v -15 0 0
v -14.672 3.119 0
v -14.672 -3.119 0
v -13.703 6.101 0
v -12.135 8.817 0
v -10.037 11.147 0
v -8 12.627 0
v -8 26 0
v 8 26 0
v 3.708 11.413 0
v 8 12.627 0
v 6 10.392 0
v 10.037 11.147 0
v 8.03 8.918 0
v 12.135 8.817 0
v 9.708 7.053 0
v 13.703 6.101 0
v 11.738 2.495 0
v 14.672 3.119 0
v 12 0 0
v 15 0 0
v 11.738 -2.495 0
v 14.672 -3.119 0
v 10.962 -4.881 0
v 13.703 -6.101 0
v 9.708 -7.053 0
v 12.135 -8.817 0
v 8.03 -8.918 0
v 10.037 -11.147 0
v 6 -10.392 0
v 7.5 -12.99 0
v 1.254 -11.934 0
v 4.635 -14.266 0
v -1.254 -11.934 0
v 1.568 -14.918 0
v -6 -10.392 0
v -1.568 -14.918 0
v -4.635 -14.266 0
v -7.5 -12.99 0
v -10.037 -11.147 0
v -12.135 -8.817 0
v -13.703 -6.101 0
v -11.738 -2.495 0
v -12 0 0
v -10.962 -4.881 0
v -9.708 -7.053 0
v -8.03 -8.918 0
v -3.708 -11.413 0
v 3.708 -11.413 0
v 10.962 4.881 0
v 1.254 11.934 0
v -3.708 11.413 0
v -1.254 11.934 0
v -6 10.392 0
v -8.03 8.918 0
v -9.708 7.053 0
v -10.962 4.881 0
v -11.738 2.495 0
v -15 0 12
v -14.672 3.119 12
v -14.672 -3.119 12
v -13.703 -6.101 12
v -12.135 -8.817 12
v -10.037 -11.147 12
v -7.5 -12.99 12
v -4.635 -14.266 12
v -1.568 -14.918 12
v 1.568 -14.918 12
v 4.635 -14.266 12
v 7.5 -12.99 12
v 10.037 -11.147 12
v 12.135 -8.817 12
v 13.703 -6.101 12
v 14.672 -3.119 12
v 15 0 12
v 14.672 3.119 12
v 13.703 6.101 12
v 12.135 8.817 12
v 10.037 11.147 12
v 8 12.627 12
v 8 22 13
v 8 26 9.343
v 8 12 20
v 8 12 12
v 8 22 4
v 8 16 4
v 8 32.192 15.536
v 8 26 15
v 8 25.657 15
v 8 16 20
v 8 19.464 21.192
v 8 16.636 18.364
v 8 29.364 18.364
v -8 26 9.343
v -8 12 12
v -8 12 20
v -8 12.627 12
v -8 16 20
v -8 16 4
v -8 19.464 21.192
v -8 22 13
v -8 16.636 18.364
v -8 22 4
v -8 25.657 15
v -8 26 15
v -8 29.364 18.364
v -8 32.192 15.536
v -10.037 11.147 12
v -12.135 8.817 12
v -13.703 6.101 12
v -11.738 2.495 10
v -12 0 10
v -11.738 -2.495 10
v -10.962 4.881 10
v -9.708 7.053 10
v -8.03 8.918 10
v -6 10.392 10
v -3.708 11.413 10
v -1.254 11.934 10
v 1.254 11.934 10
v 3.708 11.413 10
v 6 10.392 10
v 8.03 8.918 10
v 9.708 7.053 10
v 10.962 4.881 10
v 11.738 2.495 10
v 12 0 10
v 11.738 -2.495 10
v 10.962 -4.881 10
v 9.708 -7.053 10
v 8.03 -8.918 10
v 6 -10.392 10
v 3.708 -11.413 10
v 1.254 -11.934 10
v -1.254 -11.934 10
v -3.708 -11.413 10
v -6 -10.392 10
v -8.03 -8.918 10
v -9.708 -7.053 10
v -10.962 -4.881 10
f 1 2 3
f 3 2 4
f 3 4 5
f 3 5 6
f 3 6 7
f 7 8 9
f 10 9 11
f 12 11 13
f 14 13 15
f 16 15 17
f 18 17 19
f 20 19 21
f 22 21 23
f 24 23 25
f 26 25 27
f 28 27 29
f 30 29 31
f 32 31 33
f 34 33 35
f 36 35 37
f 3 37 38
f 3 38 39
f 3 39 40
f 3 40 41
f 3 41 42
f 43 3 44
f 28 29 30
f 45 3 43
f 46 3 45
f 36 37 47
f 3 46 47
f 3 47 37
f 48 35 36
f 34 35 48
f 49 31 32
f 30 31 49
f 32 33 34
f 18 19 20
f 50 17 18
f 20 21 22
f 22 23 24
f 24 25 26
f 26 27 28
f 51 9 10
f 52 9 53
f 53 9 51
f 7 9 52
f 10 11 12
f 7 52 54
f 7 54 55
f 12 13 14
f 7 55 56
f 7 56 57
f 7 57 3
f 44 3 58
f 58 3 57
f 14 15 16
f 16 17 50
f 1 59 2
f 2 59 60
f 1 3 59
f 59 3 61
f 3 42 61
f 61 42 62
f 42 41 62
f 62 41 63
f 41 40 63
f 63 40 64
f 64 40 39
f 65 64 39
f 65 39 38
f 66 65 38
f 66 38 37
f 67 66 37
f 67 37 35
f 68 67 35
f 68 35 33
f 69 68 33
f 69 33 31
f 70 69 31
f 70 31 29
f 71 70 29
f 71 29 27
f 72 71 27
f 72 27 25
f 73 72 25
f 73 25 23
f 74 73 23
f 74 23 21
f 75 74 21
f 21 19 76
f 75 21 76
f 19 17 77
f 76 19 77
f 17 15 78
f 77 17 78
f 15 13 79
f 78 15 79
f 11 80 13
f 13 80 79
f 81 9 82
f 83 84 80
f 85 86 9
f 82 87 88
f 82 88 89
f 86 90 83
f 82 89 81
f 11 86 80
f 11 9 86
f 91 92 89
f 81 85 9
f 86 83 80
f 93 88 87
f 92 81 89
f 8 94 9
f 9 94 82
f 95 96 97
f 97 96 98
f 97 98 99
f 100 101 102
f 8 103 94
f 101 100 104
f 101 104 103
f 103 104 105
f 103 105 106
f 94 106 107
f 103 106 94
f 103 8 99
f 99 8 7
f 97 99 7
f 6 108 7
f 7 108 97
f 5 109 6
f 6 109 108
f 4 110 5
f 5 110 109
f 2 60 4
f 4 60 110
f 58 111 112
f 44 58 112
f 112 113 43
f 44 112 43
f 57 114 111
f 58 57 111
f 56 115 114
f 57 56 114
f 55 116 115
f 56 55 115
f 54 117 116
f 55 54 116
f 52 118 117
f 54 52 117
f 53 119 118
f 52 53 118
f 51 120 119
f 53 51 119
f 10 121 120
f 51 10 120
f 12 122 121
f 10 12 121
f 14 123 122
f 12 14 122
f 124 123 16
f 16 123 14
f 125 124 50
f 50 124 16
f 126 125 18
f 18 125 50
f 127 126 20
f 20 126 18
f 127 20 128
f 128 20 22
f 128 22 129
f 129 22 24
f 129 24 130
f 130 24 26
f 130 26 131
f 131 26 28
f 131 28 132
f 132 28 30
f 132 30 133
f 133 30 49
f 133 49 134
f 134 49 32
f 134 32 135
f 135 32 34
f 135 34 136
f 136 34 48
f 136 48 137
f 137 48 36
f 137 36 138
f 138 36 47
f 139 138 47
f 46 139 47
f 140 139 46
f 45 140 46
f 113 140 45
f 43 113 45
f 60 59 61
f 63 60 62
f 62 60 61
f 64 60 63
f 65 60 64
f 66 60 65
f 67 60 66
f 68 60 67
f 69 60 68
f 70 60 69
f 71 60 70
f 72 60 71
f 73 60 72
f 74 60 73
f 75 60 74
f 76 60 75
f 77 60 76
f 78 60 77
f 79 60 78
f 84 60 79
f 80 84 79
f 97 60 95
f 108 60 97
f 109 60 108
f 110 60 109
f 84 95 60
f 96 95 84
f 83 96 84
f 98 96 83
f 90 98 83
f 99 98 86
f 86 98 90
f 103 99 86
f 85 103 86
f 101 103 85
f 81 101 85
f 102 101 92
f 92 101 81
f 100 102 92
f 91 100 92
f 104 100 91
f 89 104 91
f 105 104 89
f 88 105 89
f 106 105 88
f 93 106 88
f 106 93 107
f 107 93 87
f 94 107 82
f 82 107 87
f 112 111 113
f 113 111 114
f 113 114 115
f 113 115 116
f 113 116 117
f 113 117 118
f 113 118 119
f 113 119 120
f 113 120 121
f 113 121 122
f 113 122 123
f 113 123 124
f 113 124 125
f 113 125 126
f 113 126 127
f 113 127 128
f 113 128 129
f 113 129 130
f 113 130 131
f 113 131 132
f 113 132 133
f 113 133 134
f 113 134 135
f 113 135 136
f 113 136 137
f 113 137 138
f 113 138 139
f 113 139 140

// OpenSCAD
union() {
difference() {
	cylinder(11, 15, 15, [0, 0, 0]);
	cylinder(12, 12, 12, [0, 0, 0]);
}
translate([0,0,10]) {
	cylinder(2,15,15,[0,0,0]);
}
}

translate([-8, 12, 0]) {
	cube([16,4,20]);
	cube([16,10,4]);
	translate([0, 10, 0]) {
		cube([16,4,15]);
		translate([0,1,12]) {
			rotate([45,0,0]) {
				cube([16,4,9]);
			}
			rotate([-45,0,0]) {
				cube([16,4,9]);
			}
		}
	}
}
